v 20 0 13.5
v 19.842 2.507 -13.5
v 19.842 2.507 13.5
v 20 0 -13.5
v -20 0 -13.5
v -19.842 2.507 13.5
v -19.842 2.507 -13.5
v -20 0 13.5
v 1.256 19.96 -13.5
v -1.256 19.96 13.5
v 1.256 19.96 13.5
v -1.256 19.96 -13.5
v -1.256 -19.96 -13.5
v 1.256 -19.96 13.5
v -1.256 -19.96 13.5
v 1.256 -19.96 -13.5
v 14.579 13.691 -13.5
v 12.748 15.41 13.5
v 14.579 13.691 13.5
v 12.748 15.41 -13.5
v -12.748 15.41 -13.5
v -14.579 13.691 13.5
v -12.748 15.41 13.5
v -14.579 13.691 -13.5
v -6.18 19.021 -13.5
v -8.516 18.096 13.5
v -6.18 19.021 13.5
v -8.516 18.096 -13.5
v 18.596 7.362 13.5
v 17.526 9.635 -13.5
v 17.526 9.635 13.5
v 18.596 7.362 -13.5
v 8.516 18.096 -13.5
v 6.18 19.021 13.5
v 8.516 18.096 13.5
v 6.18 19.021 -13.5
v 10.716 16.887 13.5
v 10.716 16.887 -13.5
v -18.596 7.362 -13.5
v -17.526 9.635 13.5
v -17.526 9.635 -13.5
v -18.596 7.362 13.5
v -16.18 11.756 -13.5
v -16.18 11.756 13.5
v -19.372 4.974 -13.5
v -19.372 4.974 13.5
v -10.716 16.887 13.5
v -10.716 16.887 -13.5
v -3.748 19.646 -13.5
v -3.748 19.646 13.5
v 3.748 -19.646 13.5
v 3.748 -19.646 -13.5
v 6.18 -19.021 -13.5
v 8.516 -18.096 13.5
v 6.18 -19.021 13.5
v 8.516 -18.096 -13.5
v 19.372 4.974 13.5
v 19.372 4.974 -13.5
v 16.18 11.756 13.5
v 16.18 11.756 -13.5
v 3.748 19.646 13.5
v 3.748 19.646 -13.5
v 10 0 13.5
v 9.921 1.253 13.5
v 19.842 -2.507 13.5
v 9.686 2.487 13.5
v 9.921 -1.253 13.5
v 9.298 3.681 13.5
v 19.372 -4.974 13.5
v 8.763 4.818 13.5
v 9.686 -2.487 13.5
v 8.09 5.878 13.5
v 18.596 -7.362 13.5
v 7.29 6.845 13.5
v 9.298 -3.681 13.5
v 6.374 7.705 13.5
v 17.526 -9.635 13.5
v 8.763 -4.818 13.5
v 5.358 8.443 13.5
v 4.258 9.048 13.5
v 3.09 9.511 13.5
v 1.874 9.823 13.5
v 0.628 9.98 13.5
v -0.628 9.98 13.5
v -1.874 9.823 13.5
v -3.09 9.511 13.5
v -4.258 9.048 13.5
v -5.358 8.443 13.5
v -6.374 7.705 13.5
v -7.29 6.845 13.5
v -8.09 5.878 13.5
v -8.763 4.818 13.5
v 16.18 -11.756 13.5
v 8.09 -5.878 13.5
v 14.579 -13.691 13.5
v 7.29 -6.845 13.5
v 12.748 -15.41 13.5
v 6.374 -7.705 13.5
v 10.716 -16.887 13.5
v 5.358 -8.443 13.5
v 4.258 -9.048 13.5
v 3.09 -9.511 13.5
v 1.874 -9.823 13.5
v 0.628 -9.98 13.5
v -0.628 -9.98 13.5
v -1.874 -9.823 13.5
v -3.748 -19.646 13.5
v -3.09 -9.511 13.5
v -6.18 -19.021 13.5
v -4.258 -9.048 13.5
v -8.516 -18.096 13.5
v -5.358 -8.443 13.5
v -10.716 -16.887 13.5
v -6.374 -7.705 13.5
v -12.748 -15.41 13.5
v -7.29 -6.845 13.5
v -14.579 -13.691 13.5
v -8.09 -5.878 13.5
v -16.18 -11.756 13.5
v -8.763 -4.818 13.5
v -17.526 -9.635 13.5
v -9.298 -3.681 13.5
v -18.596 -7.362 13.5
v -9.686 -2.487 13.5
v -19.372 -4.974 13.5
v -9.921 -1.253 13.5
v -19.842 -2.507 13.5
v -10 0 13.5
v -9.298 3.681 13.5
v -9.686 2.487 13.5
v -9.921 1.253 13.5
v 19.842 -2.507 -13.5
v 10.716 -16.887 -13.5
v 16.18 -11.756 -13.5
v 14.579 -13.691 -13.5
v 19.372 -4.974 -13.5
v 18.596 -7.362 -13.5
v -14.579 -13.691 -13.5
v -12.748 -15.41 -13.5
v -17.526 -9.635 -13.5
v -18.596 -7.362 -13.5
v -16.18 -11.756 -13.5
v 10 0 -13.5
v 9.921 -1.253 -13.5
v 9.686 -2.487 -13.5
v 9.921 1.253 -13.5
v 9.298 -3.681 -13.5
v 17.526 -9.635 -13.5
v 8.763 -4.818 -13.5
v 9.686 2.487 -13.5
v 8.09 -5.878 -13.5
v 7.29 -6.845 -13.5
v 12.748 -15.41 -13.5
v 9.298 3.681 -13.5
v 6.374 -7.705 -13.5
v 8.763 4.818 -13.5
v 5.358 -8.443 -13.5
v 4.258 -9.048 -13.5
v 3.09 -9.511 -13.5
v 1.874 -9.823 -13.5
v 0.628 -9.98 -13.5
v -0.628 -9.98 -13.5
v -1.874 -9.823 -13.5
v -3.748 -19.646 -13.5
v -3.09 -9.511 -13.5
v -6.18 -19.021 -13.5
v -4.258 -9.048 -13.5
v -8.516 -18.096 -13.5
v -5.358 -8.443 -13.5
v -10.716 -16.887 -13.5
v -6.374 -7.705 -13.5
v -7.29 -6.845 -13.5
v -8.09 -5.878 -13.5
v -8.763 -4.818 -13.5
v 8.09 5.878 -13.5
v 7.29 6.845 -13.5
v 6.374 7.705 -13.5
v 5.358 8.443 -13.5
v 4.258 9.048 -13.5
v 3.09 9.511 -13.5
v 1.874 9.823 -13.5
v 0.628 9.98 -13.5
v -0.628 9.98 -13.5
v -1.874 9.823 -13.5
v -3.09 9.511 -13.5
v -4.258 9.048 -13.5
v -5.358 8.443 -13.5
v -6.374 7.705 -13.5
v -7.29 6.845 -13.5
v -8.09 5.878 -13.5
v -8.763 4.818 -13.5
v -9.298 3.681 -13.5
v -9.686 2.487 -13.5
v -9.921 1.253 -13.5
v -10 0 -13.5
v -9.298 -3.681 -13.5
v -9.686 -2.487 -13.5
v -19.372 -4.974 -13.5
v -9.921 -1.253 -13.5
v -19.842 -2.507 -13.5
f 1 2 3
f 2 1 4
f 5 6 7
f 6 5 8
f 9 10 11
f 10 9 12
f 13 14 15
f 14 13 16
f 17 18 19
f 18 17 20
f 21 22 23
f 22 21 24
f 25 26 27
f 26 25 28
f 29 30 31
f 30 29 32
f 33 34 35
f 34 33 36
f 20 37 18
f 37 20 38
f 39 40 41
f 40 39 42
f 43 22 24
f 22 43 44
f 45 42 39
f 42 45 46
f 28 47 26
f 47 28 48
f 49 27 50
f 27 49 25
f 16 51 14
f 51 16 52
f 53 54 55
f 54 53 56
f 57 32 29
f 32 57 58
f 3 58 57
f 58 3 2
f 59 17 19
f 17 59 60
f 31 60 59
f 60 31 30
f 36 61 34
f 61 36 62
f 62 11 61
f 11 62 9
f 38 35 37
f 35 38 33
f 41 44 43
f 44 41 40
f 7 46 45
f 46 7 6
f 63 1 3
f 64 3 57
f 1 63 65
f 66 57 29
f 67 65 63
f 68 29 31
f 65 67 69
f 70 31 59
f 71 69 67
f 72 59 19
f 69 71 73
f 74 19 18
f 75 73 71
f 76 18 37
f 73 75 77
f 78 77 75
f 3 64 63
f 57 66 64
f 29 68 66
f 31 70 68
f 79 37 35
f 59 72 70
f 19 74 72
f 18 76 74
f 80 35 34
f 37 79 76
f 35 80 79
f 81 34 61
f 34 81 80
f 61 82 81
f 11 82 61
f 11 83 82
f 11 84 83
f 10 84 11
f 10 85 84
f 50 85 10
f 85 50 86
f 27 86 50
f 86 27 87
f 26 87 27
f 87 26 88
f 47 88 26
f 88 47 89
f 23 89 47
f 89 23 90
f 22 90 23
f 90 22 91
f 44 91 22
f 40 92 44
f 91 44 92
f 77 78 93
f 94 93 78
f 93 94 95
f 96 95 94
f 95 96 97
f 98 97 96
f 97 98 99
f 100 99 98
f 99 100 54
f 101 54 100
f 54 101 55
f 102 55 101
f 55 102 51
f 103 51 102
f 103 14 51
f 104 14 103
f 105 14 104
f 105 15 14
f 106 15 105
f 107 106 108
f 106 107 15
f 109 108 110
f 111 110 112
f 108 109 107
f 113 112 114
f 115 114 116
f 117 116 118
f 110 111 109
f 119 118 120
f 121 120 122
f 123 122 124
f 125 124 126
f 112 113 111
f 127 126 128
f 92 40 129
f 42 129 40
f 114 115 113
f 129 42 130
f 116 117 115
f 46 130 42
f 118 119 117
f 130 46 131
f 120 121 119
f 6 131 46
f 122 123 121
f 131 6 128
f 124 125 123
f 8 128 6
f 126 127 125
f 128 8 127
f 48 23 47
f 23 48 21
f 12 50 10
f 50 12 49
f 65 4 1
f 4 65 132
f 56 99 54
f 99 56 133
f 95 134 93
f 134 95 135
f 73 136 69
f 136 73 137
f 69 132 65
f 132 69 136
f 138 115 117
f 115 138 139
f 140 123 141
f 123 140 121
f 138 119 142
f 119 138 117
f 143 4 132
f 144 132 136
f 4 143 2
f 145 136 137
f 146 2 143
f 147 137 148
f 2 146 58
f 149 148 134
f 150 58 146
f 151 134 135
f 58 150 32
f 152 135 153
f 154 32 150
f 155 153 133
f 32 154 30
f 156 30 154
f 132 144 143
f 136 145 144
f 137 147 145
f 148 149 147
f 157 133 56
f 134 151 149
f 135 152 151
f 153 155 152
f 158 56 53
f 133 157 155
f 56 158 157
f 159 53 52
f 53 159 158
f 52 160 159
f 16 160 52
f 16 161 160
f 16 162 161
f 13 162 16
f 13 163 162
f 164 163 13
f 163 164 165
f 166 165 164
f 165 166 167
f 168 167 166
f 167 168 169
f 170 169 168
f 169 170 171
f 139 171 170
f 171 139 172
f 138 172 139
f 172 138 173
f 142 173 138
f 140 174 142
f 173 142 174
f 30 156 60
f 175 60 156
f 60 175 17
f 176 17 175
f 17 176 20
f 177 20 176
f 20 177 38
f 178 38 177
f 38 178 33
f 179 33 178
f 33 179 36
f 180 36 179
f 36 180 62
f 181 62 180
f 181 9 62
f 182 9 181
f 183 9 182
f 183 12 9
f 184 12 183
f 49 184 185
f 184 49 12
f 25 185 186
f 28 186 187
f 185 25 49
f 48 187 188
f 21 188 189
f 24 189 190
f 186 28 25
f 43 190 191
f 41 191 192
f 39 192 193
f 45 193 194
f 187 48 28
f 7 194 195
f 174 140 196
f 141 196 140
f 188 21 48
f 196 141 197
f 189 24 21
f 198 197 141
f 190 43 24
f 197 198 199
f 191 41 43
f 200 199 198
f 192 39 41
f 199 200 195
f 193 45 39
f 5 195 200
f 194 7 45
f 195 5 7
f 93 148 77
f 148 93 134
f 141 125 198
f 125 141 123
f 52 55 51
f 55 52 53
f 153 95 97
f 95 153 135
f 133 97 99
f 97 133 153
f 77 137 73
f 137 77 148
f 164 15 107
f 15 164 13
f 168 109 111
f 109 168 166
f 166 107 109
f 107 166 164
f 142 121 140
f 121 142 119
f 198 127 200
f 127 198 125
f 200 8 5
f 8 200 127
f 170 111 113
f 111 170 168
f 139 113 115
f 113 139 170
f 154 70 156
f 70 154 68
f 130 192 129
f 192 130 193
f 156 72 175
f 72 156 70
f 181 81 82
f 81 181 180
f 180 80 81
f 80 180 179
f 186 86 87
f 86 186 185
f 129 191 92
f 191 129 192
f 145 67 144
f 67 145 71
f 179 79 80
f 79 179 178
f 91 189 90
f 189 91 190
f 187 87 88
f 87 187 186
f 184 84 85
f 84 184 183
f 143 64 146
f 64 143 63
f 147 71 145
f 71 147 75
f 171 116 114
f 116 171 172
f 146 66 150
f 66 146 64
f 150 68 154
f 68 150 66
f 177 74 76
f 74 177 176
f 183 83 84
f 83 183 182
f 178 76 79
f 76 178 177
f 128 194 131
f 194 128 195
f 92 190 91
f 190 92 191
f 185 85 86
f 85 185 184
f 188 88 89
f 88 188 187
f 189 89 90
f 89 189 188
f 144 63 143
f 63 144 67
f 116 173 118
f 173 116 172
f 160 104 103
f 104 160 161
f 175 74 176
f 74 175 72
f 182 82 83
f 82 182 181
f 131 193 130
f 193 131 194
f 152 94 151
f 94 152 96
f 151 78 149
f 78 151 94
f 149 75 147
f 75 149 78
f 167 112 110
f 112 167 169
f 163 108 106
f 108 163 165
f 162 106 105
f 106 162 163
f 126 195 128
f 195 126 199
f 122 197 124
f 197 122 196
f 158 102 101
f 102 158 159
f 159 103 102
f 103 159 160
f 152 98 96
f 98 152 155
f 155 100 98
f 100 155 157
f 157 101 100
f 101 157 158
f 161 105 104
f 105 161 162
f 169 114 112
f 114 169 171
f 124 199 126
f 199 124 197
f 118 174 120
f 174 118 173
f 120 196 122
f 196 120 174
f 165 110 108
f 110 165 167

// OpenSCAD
$fn = 50;


difference() {
	union() {
		translate(v = [0, 0, -13.5000000000]) {
			cylinder(h = 27, r = 20.0000000000);
		}
	}
	union() {
		translate(v = [0, 0, -100.0000000000]) {
			cylinder(h = 200, r = 10);
		}
	}
}
